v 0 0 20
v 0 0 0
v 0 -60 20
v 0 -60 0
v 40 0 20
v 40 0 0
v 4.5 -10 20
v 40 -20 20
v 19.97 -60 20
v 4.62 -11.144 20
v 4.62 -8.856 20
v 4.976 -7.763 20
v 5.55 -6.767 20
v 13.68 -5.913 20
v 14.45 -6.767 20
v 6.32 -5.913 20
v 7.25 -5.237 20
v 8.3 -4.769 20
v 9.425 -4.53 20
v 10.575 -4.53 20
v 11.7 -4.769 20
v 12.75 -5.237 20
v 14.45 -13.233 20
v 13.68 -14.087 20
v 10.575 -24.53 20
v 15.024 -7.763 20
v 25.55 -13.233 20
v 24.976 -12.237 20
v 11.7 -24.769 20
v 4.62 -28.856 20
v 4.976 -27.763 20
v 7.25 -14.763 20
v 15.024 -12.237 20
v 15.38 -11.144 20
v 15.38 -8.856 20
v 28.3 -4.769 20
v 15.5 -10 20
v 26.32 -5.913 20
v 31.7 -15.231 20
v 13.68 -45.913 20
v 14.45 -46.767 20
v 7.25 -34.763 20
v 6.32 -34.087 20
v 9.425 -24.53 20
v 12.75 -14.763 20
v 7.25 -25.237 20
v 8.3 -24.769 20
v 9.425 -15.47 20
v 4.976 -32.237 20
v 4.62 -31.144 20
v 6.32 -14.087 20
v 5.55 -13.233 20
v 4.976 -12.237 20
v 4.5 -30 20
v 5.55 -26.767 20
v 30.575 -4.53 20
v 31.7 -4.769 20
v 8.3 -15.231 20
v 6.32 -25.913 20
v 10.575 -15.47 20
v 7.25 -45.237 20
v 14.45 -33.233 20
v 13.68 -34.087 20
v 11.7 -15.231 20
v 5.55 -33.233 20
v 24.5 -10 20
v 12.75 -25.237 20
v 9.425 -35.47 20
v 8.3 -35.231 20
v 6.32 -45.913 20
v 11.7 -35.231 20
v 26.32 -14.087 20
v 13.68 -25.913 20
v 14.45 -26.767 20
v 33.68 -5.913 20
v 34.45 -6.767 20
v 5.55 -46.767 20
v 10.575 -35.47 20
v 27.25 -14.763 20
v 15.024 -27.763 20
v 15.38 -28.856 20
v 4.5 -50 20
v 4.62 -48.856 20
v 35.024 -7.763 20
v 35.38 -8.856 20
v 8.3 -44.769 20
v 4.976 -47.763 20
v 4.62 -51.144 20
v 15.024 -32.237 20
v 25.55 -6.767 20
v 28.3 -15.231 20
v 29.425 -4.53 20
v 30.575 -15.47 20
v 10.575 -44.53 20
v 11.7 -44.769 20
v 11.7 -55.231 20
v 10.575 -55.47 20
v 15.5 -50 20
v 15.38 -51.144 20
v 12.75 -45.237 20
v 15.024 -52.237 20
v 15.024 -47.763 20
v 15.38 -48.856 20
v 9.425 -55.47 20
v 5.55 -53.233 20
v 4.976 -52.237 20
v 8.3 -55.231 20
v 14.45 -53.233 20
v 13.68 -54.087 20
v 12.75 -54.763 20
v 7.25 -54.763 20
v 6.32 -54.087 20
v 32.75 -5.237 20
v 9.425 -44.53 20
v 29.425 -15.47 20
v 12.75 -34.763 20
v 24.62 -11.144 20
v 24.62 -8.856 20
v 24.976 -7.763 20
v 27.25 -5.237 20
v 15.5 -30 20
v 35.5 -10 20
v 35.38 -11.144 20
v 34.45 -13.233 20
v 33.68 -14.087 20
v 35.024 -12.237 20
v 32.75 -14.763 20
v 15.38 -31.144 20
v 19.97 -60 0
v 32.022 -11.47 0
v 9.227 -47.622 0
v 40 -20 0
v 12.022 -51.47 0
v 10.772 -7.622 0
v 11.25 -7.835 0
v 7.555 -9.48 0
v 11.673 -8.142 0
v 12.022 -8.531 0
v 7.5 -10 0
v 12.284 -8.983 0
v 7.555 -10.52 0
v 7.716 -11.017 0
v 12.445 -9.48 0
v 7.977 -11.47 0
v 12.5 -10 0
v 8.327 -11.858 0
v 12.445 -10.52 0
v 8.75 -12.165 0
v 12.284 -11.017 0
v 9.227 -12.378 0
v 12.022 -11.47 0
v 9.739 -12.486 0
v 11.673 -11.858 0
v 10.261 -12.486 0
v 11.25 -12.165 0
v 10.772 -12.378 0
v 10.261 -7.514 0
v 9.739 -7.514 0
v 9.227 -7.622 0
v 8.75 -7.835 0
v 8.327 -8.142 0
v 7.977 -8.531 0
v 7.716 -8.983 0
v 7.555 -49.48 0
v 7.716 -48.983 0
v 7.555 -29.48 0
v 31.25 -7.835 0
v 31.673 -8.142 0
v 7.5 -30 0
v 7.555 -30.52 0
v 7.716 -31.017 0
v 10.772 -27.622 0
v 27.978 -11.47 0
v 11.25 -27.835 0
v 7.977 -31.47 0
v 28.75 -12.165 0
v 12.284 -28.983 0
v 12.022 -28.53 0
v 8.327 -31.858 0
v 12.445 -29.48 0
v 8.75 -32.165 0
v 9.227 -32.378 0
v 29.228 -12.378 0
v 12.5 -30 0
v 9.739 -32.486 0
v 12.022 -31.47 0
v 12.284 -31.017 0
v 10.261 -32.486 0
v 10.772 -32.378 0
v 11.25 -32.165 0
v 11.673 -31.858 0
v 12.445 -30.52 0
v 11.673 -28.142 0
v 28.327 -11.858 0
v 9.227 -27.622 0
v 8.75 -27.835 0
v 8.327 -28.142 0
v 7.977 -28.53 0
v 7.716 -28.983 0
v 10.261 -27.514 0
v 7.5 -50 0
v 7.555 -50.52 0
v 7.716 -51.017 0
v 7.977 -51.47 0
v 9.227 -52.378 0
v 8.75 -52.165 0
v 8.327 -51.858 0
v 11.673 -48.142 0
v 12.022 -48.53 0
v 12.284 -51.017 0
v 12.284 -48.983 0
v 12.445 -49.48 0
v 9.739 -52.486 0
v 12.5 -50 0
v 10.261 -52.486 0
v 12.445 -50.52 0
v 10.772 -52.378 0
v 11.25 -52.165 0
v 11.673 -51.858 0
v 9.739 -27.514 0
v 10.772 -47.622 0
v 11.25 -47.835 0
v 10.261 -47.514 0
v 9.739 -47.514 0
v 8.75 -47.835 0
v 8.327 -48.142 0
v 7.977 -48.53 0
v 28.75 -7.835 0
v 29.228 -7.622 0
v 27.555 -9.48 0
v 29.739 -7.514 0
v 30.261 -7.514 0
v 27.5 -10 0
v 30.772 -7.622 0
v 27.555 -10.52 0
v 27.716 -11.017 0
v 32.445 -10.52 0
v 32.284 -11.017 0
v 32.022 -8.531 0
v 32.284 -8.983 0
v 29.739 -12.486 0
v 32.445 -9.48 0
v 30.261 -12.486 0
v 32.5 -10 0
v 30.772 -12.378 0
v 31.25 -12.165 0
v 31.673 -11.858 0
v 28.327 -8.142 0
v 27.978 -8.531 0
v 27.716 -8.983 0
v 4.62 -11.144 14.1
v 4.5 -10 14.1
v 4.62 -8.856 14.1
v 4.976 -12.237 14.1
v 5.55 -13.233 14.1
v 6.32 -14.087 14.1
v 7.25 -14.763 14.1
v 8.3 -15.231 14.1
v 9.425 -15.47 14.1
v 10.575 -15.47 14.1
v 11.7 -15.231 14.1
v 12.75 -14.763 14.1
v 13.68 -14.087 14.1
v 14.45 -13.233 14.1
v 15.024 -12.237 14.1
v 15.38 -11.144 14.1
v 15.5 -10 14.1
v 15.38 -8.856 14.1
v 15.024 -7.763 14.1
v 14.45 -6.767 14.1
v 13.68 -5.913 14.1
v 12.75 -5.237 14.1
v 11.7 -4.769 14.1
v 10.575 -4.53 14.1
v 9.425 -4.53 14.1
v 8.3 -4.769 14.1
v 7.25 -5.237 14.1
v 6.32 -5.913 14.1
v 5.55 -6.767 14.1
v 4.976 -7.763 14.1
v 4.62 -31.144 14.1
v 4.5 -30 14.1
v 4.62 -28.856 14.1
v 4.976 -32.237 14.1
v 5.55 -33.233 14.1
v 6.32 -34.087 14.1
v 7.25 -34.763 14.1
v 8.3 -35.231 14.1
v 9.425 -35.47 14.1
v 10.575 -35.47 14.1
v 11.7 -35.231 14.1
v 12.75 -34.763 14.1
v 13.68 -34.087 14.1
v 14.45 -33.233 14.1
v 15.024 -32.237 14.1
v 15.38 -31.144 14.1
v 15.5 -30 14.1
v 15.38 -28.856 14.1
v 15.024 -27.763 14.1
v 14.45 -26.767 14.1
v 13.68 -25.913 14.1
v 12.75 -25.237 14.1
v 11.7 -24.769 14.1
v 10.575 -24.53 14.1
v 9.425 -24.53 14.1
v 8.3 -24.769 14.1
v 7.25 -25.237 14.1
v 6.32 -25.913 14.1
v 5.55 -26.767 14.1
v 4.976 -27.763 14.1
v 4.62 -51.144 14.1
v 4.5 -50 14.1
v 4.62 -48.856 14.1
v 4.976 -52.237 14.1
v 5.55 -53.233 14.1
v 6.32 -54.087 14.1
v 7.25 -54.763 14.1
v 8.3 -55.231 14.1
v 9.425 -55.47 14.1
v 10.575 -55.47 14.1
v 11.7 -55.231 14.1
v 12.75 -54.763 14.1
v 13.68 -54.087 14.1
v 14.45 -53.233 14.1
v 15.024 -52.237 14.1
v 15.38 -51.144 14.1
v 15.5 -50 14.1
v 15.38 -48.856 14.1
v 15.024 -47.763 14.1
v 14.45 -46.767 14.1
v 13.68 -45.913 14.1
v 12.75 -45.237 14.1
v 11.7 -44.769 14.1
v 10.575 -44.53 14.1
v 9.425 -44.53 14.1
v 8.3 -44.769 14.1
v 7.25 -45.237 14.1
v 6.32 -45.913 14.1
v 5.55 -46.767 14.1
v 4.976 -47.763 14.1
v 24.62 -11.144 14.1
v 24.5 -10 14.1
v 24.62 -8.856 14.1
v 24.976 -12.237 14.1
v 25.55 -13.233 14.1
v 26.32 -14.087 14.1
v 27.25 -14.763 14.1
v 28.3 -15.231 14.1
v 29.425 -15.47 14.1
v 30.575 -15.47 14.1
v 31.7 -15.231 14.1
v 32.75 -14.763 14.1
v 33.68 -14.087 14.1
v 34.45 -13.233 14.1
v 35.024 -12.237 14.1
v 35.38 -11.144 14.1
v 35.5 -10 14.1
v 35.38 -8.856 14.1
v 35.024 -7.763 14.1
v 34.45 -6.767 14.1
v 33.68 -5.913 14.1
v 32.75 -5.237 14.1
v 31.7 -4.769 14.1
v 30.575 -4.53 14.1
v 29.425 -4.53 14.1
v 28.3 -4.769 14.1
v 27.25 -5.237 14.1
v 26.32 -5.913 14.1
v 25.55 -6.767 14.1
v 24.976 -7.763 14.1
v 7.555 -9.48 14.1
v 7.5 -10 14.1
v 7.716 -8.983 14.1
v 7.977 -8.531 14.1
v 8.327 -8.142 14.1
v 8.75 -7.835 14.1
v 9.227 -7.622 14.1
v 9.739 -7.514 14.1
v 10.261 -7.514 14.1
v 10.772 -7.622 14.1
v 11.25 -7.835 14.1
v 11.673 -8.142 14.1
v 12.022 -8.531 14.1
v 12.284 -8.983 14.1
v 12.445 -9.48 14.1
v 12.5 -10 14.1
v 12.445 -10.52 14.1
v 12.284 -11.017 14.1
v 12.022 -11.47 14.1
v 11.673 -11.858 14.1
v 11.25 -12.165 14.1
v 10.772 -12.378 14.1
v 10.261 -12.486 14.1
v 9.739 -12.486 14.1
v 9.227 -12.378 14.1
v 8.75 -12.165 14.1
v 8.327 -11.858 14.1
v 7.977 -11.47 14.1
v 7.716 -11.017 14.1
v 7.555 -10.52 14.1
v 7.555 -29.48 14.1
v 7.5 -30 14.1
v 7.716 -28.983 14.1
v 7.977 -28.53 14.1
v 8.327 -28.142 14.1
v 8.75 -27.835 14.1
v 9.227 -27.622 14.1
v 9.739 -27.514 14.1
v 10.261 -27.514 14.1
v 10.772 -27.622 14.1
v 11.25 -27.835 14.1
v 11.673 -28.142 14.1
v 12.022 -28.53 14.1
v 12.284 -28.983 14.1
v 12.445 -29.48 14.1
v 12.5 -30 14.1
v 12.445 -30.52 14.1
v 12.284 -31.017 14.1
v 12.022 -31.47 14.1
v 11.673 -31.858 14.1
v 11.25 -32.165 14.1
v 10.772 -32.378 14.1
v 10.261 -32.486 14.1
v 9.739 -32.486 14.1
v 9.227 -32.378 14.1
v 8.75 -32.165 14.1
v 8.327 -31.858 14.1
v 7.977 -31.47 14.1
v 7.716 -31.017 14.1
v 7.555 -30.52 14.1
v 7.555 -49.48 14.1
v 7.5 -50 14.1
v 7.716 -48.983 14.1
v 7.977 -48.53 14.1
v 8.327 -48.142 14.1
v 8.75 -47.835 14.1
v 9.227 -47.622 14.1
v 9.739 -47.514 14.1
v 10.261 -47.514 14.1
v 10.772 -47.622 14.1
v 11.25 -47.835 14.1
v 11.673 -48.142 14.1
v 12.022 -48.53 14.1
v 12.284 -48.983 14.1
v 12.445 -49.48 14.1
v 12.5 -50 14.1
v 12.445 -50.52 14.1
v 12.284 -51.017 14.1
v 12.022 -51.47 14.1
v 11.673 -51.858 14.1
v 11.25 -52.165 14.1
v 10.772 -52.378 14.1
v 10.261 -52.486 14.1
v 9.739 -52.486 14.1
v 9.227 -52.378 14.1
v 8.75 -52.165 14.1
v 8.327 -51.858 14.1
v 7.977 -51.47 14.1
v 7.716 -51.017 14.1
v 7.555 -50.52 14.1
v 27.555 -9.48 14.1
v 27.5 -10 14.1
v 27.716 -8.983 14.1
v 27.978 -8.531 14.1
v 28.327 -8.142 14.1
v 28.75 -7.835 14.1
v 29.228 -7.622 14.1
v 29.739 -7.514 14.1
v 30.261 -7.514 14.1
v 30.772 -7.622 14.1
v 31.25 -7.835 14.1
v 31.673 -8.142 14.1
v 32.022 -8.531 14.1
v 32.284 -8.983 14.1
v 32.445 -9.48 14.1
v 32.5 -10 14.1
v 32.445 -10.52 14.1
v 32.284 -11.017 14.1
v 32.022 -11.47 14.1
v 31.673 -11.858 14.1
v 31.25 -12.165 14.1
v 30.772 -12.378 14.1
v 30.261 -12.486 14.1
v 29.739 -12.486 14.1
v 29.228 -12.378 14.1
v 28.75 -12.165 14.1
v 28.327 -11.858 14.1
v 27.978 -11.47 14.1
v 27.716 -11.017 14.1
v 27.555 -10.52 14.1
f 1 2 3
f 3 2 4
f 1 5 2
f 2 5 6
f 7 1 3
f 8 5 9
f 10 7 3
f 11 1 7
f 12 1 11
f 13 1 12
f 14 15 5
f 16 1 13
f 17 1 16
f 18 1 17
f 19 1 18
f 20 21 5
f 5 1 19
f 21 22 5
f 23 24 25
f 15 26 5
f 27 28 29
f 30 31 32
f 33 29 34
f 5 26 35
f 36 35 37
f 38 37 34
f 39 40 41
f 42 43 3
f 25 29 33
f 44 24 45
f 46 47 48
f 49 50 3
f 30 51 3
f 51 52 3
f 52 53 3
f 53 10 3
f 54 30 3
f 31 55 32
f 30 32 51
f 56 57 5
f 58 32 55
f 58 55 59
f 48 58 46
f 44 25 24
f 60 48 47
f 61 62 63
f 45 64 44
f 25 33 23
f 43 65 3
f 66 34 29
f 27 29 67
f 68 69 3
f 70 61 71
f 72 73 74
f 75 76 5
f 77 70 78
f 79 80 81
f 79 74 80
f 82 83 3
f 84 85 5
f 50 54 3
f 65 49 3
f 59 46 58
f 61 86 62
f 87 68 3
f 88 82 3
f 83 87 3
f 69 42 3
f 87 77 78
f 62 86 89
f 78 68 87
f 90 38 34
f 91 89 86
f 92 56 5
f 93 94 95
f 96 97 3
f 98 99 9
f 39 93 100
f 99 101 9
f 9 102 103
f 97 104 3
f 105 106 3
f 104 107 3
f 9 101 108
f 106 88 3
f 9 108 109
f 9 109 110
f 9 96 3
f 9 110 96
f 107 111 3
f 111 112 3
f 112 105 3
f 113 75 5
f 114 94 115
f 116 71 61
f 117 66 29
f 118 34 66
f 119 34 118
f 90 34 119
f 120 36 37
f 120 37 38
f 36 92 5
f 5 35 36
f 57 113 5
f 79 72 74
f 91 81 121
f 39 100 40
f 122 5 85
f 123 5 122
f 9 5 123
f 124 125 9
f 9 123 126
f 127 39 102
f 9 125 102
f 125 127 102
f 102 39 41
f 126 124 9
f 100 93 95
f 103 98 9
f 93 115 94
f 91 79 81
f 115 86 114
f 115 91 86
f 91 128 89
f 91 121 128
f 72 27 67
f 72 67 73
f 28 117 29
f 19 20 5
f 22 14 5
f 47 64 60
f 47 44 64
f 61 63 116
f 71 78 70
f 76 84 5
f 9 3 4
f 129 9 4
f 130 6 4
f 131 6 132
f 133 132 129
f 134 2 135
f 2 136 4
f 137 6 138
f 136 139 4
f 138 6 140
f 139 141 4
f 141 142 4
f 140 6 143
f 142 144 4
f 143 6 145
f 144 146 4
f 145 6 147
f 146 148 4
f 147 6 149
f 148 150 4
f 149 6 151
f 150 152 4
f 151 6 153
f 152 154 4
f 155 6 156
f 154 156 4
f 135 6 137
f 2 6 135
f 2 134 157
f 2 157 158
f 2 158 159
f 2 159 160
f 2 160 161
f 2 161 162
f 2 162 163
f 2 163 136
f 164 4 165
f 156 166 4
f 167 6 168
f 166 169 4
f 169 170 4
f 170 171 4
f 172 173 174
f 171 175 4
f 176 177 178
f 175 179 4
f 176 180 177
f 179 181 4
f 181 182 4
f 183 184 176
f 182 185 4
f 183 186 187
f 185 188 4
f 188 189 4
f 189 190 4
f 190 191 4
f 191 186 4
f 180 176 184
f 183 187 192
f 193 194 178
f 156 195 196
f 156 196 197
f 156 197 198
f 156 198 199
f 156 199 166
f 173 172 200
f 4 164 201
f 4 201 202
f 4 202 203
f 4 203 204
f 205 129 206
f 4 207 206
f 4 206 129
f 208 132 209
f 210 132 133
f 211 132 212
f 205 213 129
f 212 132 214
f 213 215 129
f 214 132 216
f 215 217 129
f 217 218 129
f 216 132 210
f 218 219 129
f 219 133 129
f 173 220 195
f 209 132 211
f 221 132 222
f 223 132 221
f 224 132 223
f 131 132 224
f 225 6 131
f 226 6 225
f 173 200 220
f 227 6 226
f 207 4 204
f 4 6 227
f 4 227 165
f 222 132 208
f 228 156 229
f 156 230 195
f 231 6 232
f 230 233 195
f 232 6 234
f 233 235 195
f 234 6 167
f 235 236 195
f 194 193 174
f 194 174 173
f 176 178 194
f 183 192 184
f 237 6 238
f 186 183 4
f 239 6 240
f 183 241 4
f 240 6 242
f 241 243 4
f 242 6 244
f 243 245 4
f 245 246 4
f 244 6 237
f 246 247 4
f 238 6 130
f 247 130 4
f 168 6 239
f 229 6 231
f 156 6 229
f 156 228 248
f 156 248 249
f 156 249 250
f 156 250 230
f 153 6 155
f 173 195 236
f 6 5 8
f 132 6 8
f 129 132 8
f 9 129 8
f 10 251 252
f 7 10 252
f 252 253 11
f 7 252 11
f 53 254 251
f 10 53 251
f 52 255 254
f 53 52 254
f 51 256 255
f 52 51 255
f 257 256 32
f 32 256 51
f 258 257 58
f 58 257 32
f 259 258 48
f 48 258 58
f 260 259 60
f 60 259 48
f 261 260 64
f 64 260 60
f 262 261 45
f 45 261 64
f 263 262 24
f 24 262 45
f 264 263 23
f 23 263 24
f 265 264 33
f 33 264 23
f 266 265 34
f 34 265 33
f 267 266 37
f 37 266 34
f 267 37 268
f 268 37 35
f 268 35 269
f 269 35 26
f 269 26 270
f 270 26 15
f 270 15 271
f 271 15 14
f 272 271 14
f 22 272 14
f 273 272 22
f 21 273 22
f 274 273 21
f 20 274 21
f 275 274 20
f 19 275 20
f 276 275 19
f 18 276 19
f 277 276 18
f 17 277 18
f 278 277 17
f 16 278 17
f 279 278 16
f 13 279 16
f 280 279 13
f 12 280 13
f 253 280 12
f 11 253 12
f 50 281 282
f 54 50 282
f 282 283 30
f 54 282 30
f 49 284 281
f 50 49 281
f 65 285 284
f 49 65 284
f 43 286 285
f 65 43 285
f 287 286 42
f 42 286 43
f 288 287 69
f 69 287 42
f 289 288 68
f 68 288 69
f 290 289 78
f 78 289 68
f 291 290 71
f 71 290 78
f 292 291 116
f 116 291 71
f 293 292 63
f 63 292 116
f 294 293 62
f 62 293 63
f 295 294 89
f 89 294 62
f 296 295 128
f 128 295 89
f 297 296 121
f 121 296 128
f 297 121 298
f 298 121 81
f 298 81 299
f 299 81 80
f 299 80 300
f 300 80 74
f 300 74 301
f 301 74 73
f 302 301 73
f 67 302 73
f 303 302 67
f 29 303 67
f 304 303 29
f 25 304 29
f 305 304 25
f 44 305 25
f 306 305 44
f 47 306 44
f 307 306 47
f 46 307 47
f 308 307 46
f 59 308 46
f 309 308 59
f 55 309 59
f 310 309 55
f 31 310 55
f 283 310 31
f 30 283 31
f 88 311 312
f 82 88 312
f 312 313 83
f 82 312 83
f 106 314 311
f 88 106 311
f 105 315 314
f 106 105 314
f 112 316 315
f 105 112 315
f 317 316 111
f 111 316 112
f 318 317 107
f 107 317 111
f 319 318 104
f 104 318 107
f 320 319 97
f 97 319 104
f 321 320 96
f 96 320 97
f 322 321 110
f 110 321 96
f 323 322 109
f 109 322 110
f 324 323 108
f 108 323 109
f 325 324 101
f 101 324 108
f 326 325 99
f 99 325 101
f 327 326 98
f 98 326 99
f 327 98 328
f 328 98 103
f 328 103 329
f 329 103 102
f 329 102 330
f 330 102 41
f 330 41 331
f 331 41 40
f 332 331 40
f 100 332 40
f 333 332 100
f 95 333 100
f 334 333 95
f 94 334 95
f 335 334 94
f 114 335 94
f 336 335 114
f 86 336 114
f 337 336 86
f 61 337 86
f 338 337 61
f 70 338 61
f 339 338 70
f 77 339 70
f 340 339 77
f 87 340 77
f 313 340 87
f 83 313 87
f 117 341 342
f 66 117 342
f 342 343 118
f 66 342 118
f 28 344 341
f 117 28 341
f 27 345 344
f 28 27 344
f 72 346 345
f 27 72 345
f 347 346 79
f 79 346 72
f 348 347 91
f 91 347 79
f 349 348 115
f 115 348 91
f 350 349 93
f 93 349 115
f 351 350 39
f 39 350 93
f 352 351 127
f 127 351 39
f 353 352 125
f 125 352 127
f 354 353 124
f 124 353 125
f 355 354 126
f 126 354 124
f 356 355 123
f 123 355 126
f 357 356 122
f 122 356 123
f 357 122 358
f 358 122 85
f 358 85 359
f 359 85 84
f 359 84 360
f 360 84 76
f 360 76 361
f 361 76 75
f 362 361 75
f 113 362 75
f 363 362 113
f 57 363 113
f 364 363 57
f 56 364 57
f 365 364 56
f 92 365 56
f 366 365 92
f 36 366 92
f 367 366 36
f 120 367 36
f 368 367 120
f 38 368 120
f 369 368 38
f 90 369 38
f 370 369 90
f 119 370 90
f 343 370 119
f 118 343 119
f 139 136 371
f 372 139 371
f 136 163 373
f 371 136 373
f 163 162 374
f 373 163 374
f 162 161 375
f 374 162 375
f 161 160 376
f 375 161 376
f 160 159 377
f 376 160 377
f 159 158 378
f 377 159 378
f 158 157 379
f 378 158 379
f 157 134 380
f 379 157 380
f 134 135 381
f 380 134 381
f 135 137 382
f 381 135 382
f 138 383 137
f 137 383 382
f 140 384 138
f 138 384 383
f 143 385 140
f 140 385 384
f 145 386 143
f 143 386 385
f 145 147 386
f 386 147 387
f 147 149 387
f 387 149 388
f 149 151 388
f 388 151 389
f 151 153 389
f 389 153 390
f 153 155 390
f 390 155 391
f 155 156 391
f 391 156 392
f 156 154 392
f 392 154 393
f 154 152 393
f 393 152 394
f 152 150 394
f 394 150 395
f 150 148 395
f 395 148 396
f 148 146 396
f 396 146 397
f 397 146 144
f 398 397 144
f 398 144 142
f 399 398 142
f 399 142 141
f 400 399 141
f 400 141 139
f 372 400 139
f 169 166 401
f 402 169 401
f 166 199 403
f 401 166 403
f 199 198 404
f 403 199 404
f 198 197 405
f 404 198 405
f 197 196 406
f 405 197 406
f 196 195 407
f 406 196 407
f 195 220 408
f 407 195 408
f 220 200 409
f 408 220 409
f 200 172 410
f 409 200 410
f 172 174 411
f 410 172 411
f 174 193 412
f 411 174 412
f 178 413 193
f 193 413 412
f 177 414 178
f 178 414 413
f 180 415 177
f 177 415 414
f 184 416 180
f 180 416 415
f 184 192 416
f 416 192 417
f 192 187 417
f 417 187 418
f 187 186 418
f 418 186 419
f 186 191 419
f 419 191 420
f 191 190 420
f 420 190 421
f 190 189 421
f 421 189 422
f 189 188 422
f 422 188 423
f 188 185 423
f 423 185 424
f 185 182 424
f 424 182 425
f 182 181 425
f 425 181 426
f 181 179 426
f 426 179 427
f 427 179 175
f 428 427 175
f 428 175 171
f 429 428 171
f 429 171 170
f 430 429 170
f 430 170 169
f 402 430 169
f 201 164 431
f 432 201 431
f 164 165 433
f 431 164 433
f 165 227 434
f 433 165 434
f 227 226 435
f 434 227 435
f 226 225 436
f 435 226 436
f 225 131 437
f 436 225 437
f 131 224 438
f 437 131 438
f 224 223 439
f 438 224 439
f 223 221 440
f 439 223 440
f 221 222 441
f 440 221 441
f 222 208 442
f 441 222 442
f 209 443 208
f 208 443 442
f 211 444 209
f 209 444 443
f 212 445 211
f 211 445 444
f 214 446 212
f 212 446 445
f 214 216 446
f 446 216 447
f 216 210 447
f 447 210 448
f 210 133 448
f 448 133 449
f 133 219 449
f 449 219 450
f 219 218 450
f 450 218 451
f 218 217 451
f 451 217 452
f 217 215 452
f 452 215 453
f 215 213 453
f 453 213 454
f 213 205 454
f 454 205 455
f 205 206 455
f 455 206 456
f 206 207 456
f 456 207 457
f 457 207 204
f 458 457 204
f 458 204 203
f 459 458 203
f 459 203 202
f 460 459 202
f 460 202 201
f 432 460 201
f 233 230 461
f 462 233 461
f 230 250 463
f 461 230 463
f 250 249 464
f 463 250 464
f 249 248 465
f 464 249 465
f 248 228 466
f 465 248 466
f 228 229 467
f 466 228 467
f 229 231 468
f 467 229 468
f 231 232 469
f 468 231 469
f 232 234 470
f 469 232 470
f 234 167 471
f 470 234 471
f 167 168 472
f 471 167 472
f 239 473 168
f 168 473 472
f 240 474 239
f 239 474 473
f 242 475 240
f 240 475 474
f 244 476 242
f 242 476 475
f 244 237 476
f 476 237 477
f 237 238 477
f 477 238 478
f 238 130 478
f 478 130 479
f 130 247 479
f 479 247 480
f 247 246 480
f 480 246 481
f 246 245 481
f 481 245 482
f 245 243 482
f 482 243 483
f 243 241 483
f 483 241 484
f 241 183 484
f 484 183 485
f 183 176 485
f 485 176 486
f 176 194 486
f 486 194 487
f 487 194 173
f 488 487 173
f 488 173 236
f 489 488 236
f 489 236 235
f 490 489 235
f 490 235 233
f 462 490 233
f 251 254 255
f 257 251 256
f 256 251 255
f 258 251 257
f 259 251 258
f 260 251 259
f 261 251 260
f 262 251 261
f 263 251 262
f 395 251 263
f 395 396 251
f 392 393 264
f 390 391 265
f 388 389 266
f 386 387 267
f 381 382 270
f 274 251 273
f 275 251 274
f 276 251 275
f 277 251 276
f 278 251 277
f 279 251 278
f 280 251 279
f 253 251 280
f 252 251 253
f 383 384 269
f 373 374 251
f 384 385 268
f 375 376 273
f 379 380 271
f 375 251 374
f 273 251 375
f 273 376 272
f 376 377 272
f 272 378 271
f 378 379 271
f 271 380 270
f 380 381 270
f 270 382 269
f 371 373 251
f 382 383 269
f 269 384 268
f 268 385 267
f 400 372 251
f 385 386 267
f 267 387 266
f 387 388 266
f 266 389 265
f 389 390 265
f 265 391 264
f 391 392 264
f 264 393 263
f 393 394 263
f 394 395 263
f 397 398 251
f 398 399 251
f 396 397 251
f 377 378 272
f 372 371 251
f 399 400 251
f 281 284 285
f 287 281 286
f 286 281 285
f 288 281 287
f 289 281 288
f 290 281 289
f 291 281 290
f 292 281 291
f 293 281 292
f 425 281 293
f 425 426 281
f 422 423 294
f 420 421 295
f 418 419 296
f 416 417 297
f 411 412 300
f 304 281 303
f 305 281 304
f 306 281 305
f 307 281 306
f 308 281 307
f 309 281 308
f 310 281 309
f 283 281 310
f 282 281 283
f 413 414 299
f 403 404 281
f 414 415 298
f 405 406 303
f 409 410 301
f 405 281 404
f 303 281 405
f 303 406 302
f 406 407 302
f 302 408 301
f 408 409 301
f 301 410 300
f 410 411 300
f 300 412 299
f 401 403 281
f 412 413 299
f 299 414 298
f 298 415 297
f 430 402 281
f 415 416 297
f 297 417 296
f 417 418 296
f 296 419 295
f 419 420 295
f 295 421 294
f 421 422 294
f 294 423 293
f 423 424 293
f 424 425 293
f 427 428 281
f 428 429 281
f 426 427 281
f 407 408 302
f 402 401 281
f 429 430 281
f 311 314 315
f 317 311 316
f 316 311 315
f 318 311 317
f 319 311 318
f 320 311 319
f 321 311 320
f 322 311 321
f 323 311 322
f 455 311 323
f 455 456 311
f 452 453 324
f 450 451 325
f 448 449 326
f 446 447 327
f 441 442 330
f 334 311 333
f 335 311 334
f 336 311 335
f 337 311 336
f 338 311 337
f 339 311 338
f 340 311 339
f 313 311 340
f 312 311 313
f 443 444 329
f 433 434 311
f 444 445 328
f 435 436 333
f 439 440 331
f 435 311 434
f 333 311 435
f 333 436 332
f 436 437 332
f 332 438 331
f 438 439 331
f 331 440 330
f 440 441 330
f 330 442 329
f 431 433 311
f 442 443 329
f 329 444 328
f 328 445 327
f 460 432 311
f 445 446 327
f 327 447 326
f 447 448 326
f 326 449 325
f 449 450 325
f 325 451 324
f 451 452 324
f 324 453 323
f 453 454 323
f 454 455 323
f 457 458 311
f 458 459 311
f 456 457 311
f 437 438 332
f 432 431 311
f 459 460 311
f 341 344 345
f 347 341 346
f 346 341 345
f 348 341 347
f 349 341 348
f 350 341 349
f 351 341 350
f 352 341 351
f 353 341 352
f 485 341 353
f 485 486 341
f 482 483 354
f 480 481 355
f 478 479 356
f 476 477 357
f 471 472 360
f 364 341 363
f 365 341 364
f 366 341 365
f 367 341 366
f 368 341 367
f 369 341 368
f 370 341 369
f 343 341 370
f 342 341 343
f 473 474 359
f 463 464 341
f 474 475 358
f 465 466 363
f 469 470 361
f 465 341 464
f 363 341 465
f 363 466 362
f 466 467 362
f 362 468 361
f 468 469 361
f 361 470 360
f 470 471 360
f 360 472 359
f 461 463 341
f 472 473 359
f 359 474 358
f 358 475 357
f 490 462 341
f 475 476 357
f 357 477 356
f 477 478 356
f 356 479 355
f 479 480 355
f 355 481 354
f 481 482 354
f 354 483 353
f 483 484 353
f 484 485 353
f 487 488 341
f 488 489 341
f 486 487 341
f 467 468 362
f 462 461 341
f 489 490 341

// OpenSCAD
// file: functions.scad
// PRUSA Mendel  
// Functions used in many files
// GNU GPL v2
// Josef Průša
// josefprusa@me.com
// prusadjs.cz
// http://www.reprap.org/wiki/Prusa_Mendel
// http://github.com/prusajr/PrusaMendel

module nut(d,h,horizontal=true){
cornerdiameter =  (d / 2) / cos (180 / 6);
cylinder(h = h, r = cornerdiameter, $fn = 6);
if(horizontal){
for(i = [1:6]){
	rotate([0,0,60*i]) translate([-cornerdiameter-0.2,0,0]) rotate([0,0,-45]) cube(size = [2,2,h]);
}}
}

// By nophead
module polyhole(d,h) {
    n = max(round(2 * d),3);
    rotate([0,0,180])
        cylinder(h = h, r = (d / 2) / cos (180 / n), $fn = n);
}

module roundcorner(diameter){
	difference(){
		cube(size = [diameter,diameter,99], center = false);
		translate(v = [diameter, diameter, 0]) cylinder(h = 100, r=diameter, center=true);
	}
}
// file: metric.scad
// PRUSA Mendel  
// Default metric sizes
// GNU GPL v2
// Josef Průša
// josefprusa@me.com
// prusadjs.cz
// http://www.reprap.org/wiki/Prusa_Mendel
// http://github.com/prusajr/PrusaMendel

// DONT CHANGE THIS FILE! ALTER VALUES IN CONFIGURATION.SCAD INSTEAD

// RODS

threaded_rod_diameter = 8;
threaded_rod_diameter_horizontal = 8;
smooth_bar_diameter = 8;
smooth_bar_diameter_horizontal = 8;

// Nuts and bolts

m8_diameter = 8;
m8_nut_diameter = 14.5;

m4_diameter = 4;
m4_nut_diameter = 7.5;

m3_diameter = 3;
m3_nut_diameter = 5;

// Bushing holder

bushing_core_diameter = smooth_bar_diameter;
bushing_material_thickness = 1;

// Motors

motor_shaft = 5.1;
// file: configuration.scad
// PRUSA Mendel  
// Configuration file
// GNU GPL v2
// Josef Průša
// josefprusa@me.com
// prusadjs.cz
// http://www.reprap.org/wiki/Prusa_Mendel
// http://github.com/prusajr/PrusaMendel

// PLEASE SELECT ONE OF THE CONFIGURATIONS BELOW
// BY UN-COMMENTING IT

// Uncomment for metric settings
// METRIC METRIC METRIC METRIC METRIC METRIC METRIC METRIC 

include <metric.scad>;

// Uncomment for imperial settings
// IMPERIAL IMPERIAL IMPERIAL IMPERIAL IMPERIAL IMPERIAL IMPERIAL 

//include <sae.scad>;

//thin_wall = 3;
// LM8UU
//linear = false;

// override settings by customizing below
// CUSTOM CUSTOM CUSTOM CUSTOM CUSTOM CUSTOM CUSTOM CUSTOM CUSTOM

threaded_rod_diameter = 8.2;
threaded_rod_diameter_horizontal = 8.2;
smooth_bar_diameter = 8.3;
smooth_bar_diameter_horizontal = 8.3;

// Nuts and bolts

m8_diameter = 8.3;
m8_nut_diameter = 15;

m4_diameter = 4.2;
m4_nut_diameter = 9;

m3_diameter = 3.3;
m3_nut_diameter = 5.8;

///counted stuff
m3_nut_diameter_bigger = ((m3_nut_diameter  / 2) / cos (180 / 6))*2;

// functions 
include <functions.scad>
// main file
// C. Strang		
// cstrang@????
// funfor.us

include <configuration.scad>;

h = 20;      //height 14 for normal "thick" parts
//h = 6;		// height 6 for "thin" parts

t = 2;		// tab thickness 2 is normal, -1 to remove
o = 0.1;	//  overlap amount for error free STLs


$fn=30;
rotate([180, 0, 0]) {
	translate([0, 0, -h]) prism90spacer(h, t, 5);
	//translate([-3,0,-h]) mirror() prism90spacer(h,t,5);
}

module prism90spacer(th, st, hd) {
	difference()
	{
		cube([40,60,th]);
		translate([40,20,-o]) rotate([0,0,26.6]) cube([30,50,th+2*o]);
		// holes
		translate([10,10,-o]) cylinder(r=hd/2,h=th+4);
		translate([30,10,-o]) cylinder(r=hd/2,h=th+4);
		translate([10,30,-o]) cylinder(r=hd/2,h=th+4);
		translate([10,50,-o]) cylinder(r=hd/2,h=th+4);
		// countersink holes
		translate([10,10,-o]) cylinder(r=hd * 1.1,h=6);
		translate([30,10,-o]) cylinder(r=hd * 1.1,h=6);
		translate([10,30,-o]) cylinder(r=hd * 1.1,h=6);
		translate([10,50,-o]) cylinder(r=hd * 1.1,h=6);
	}
}
